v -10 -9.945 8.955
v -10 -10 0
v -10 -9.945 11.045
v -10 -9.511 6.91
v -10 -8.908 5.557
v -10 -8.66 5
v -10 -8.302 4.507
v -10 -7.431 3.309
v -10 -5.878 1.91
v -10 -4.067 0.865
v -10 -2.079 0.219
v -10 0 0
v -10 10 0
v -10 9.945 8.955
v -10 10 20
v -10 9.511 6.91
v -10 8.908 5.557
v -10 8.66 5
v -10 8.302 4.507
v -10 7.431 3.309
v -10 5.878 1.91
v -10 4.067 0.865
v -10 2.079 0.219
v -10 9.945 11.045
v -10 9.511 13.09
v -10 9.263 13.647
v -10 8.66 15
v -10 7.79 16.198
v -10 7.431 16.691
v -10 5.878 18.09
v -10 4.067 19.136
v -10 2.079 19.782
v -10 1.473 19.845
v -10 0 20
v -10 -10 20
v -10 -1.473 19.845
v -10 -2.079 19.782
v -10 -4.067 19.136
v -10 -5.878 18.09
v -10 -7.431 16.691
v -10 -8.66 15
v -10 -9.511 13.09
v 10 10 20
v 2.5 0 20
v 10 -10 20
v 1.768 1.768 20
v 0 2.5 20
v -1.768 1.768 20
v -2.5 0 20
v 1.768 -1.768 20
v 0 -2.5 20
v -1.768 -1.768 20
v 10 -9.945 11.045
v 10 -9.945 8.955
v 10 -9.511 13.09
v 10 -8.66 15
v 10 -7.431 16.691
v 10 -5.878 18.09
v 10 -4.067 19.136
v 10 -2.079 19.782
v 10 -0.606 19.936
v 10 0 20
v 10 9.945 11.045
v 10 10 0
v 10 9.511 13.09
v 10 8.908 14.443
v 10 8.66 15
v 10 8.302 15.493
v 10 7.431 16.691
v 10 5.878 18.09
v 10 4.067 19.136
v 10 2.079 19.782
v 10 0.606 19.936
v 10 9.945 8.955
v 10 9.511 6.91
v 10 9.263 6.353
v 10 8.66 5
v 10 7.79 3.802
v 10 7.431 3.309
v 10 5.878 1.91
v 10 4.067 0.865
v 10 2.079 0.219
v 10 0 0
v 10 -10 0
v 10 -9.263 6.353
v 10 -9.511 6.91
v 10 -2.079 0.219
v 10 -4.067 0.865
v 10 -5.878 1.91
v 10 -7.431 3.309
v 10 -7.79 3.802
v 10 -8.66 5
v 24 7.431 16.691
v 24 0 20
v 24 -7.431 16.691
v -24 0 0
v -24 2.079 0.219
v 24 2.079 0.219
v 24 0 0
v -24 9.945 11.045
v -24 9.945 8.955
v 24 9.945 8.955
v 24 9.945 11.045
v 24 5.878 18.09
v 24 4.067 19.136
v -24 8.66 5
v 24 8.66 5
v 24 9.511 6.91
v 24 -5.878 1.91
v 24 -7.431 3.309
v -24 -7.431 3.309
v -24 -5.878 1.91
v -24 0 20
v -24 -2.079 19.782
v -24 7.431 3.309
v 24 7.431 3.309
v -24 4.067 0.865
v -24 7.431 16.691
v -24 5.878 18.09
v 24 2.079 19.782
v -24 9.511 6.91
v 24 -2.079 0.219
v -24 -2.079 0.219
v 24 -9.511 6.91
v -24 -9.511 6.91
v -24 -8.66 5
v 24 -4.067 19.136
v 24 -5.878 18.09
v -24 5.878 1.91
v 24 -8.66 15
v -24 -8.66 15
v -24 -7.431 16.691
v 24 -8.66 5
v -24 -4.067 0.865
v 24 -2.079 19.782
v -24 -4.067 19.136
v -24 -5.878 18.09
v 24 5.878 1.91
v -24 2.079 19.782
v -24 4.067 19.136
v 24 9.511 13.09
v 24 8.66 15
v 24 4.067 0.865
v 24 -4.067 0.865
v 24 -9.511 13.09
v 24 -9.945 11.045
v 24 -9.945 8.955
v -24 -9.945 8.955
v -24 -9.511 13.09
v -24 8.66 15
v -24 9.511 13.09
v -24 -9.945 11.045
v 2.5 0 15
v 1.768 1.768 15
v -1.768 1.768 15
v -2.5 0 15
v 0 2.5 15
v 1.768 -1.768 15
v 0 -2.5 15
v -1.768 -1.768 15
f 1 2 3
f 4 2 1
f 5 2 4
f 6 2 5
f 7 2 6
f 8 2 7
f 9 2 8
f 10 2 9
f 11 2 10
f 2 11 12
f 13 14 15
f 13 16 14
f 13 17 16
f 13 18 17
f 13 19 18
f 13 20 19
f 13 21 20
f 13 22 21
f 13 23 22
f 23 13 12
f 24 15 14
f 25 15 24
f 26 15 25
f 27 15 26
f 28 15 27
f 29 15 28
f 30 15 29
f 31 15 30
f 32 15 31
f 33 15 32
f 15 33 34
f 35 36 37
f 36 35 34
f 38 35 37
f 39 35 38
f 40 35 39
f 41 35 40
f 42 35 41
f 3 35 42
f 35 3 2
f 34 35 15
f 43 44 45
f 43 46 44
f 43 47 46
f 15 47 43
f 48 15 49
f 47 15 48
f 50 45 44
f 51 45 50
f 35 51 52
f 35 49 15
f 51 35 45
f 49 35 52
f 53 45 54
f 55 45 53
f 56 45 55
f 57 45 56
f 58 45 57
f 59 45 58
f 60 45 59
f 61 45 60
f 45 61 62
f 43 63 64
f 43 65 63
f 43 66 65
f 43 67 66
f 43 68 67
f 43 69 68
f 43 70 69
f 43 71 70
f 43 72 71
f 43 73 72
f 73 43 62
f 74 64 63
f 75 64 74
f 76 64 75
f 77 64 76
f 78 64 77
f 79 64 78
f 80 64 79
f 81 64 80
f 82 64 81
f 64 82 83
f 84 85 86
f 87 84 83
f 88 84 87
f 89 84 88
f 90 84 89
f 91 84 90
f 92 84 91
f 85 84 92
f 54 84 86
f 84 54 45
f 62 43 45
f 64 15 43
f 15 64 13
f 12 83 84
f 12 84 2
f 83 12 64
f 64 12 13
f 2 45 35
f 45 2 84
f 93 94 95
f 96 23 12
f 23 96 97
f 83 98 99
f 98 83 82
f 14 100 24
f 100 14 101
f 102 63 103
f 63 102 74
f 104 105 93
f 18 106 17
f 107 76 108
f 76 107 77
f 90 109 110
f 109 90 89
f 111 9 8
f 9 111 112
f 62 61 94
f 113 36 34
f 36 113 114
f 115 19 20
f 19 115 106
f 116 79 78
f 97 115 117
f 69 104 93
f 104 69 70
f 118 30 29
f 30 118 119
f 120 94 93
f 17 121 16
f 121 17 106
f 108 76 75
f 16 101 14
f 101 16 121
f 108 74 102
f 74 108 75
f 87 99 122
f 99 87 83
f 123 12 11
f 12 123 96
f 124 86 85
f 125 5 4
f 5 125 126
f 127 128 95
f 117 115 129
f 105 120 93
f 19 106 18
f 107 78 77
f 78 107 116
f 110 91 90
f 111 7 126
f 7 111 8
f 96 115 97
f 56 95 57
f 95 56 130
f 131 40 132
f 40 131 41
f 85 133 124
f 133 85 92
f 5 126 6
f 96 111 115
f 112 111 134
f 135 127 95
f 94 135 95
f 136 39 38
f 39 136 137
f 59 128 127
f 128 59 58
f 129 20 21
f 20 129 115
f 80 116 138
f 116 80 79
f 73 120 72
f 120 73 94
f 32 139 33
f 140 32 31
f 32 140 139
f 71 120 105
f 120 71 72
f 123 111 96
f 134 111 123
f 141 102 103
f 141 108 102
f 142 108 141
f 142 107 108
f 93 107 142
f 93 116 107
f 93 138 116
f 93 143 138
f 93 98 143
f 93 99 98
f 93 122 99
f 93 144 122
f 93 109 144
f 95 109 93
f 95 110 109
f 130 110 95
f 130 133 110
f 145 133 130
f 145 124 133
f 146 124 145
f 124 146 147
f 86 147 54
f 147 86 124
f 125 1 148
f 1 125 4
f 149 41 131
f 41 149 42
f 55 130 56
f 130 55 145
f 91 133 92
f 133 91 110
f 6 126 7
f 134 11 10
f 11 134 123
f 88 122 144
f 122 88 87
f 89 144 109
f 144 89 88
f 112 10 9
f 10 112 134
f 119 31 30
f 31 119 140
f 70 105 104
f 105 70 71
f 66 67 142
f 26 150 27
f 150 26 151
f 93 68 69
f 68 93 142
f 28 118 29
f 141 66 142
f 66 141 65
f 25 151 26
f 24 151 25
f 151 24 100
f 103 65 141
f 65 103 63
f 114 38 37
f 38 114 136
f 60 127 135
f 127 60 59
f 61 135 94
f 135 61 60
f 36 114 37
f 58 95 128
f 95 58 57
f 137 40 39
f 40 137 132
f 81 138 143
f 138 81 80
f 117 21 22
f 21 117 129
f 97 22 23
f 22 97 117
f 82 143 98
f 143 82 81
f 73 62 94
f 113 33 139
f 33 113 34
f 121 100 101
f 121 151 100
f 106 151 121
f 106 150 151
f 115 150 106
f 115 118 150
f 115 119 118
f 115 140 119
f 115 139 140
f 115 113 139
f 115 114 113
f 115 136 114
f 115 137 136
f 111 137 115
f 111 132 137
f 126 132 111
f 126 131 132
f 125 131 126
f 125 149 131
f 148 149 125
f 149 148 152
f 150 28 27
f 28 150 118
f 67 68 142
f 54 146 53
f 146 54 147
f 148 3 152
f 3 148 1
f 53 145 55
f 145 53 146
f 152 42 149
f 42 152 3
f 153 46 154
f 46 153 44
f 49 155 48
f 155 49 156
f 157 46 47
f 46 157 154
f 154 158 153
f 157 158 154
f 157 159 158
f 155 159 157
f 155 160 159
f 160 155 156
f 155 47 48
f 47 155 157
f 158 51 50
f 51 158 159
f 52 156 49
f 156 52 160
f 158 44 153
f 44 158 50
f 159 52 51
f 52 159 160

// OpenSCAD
cube_size = 20; // [10:Small,20:Medium,30:Large]

hole_diameter = 5; 
hole_radius = hole_diameter/2;

// How deep should the center hole be?
hole_depth = 5; // [0,1,5,50]

show_wheels = "yes"; // [yes,no]

// How thick should the side wheels be?
wheel_thickness = 14; // [1:40]

// ignore this variable!
// foo=1;

// don't turn functions into params!
function BEZ03(u) = pow((1-u), 3);

// ignore variable values
bing = 3+4;
baz = 3 / hole_depth;

difference() {
  union() {
    translate([0, 0, cube_size/2]) cube([cube_size,cube_size,cube_size], center=true);
    if (show_wheels == "yes") {
      translate([0, 0, cube_size/2]) rotate([0, 90, 0]) {
        cylinder(r=cube_size/2, h=cube_size+(wheel_thickness*2), center=true);
      }
    }
  }
  translate([0, 0, cube_size-hole_depth]) cylinder(r=hole_radius, h=hole_depth);
}
        
